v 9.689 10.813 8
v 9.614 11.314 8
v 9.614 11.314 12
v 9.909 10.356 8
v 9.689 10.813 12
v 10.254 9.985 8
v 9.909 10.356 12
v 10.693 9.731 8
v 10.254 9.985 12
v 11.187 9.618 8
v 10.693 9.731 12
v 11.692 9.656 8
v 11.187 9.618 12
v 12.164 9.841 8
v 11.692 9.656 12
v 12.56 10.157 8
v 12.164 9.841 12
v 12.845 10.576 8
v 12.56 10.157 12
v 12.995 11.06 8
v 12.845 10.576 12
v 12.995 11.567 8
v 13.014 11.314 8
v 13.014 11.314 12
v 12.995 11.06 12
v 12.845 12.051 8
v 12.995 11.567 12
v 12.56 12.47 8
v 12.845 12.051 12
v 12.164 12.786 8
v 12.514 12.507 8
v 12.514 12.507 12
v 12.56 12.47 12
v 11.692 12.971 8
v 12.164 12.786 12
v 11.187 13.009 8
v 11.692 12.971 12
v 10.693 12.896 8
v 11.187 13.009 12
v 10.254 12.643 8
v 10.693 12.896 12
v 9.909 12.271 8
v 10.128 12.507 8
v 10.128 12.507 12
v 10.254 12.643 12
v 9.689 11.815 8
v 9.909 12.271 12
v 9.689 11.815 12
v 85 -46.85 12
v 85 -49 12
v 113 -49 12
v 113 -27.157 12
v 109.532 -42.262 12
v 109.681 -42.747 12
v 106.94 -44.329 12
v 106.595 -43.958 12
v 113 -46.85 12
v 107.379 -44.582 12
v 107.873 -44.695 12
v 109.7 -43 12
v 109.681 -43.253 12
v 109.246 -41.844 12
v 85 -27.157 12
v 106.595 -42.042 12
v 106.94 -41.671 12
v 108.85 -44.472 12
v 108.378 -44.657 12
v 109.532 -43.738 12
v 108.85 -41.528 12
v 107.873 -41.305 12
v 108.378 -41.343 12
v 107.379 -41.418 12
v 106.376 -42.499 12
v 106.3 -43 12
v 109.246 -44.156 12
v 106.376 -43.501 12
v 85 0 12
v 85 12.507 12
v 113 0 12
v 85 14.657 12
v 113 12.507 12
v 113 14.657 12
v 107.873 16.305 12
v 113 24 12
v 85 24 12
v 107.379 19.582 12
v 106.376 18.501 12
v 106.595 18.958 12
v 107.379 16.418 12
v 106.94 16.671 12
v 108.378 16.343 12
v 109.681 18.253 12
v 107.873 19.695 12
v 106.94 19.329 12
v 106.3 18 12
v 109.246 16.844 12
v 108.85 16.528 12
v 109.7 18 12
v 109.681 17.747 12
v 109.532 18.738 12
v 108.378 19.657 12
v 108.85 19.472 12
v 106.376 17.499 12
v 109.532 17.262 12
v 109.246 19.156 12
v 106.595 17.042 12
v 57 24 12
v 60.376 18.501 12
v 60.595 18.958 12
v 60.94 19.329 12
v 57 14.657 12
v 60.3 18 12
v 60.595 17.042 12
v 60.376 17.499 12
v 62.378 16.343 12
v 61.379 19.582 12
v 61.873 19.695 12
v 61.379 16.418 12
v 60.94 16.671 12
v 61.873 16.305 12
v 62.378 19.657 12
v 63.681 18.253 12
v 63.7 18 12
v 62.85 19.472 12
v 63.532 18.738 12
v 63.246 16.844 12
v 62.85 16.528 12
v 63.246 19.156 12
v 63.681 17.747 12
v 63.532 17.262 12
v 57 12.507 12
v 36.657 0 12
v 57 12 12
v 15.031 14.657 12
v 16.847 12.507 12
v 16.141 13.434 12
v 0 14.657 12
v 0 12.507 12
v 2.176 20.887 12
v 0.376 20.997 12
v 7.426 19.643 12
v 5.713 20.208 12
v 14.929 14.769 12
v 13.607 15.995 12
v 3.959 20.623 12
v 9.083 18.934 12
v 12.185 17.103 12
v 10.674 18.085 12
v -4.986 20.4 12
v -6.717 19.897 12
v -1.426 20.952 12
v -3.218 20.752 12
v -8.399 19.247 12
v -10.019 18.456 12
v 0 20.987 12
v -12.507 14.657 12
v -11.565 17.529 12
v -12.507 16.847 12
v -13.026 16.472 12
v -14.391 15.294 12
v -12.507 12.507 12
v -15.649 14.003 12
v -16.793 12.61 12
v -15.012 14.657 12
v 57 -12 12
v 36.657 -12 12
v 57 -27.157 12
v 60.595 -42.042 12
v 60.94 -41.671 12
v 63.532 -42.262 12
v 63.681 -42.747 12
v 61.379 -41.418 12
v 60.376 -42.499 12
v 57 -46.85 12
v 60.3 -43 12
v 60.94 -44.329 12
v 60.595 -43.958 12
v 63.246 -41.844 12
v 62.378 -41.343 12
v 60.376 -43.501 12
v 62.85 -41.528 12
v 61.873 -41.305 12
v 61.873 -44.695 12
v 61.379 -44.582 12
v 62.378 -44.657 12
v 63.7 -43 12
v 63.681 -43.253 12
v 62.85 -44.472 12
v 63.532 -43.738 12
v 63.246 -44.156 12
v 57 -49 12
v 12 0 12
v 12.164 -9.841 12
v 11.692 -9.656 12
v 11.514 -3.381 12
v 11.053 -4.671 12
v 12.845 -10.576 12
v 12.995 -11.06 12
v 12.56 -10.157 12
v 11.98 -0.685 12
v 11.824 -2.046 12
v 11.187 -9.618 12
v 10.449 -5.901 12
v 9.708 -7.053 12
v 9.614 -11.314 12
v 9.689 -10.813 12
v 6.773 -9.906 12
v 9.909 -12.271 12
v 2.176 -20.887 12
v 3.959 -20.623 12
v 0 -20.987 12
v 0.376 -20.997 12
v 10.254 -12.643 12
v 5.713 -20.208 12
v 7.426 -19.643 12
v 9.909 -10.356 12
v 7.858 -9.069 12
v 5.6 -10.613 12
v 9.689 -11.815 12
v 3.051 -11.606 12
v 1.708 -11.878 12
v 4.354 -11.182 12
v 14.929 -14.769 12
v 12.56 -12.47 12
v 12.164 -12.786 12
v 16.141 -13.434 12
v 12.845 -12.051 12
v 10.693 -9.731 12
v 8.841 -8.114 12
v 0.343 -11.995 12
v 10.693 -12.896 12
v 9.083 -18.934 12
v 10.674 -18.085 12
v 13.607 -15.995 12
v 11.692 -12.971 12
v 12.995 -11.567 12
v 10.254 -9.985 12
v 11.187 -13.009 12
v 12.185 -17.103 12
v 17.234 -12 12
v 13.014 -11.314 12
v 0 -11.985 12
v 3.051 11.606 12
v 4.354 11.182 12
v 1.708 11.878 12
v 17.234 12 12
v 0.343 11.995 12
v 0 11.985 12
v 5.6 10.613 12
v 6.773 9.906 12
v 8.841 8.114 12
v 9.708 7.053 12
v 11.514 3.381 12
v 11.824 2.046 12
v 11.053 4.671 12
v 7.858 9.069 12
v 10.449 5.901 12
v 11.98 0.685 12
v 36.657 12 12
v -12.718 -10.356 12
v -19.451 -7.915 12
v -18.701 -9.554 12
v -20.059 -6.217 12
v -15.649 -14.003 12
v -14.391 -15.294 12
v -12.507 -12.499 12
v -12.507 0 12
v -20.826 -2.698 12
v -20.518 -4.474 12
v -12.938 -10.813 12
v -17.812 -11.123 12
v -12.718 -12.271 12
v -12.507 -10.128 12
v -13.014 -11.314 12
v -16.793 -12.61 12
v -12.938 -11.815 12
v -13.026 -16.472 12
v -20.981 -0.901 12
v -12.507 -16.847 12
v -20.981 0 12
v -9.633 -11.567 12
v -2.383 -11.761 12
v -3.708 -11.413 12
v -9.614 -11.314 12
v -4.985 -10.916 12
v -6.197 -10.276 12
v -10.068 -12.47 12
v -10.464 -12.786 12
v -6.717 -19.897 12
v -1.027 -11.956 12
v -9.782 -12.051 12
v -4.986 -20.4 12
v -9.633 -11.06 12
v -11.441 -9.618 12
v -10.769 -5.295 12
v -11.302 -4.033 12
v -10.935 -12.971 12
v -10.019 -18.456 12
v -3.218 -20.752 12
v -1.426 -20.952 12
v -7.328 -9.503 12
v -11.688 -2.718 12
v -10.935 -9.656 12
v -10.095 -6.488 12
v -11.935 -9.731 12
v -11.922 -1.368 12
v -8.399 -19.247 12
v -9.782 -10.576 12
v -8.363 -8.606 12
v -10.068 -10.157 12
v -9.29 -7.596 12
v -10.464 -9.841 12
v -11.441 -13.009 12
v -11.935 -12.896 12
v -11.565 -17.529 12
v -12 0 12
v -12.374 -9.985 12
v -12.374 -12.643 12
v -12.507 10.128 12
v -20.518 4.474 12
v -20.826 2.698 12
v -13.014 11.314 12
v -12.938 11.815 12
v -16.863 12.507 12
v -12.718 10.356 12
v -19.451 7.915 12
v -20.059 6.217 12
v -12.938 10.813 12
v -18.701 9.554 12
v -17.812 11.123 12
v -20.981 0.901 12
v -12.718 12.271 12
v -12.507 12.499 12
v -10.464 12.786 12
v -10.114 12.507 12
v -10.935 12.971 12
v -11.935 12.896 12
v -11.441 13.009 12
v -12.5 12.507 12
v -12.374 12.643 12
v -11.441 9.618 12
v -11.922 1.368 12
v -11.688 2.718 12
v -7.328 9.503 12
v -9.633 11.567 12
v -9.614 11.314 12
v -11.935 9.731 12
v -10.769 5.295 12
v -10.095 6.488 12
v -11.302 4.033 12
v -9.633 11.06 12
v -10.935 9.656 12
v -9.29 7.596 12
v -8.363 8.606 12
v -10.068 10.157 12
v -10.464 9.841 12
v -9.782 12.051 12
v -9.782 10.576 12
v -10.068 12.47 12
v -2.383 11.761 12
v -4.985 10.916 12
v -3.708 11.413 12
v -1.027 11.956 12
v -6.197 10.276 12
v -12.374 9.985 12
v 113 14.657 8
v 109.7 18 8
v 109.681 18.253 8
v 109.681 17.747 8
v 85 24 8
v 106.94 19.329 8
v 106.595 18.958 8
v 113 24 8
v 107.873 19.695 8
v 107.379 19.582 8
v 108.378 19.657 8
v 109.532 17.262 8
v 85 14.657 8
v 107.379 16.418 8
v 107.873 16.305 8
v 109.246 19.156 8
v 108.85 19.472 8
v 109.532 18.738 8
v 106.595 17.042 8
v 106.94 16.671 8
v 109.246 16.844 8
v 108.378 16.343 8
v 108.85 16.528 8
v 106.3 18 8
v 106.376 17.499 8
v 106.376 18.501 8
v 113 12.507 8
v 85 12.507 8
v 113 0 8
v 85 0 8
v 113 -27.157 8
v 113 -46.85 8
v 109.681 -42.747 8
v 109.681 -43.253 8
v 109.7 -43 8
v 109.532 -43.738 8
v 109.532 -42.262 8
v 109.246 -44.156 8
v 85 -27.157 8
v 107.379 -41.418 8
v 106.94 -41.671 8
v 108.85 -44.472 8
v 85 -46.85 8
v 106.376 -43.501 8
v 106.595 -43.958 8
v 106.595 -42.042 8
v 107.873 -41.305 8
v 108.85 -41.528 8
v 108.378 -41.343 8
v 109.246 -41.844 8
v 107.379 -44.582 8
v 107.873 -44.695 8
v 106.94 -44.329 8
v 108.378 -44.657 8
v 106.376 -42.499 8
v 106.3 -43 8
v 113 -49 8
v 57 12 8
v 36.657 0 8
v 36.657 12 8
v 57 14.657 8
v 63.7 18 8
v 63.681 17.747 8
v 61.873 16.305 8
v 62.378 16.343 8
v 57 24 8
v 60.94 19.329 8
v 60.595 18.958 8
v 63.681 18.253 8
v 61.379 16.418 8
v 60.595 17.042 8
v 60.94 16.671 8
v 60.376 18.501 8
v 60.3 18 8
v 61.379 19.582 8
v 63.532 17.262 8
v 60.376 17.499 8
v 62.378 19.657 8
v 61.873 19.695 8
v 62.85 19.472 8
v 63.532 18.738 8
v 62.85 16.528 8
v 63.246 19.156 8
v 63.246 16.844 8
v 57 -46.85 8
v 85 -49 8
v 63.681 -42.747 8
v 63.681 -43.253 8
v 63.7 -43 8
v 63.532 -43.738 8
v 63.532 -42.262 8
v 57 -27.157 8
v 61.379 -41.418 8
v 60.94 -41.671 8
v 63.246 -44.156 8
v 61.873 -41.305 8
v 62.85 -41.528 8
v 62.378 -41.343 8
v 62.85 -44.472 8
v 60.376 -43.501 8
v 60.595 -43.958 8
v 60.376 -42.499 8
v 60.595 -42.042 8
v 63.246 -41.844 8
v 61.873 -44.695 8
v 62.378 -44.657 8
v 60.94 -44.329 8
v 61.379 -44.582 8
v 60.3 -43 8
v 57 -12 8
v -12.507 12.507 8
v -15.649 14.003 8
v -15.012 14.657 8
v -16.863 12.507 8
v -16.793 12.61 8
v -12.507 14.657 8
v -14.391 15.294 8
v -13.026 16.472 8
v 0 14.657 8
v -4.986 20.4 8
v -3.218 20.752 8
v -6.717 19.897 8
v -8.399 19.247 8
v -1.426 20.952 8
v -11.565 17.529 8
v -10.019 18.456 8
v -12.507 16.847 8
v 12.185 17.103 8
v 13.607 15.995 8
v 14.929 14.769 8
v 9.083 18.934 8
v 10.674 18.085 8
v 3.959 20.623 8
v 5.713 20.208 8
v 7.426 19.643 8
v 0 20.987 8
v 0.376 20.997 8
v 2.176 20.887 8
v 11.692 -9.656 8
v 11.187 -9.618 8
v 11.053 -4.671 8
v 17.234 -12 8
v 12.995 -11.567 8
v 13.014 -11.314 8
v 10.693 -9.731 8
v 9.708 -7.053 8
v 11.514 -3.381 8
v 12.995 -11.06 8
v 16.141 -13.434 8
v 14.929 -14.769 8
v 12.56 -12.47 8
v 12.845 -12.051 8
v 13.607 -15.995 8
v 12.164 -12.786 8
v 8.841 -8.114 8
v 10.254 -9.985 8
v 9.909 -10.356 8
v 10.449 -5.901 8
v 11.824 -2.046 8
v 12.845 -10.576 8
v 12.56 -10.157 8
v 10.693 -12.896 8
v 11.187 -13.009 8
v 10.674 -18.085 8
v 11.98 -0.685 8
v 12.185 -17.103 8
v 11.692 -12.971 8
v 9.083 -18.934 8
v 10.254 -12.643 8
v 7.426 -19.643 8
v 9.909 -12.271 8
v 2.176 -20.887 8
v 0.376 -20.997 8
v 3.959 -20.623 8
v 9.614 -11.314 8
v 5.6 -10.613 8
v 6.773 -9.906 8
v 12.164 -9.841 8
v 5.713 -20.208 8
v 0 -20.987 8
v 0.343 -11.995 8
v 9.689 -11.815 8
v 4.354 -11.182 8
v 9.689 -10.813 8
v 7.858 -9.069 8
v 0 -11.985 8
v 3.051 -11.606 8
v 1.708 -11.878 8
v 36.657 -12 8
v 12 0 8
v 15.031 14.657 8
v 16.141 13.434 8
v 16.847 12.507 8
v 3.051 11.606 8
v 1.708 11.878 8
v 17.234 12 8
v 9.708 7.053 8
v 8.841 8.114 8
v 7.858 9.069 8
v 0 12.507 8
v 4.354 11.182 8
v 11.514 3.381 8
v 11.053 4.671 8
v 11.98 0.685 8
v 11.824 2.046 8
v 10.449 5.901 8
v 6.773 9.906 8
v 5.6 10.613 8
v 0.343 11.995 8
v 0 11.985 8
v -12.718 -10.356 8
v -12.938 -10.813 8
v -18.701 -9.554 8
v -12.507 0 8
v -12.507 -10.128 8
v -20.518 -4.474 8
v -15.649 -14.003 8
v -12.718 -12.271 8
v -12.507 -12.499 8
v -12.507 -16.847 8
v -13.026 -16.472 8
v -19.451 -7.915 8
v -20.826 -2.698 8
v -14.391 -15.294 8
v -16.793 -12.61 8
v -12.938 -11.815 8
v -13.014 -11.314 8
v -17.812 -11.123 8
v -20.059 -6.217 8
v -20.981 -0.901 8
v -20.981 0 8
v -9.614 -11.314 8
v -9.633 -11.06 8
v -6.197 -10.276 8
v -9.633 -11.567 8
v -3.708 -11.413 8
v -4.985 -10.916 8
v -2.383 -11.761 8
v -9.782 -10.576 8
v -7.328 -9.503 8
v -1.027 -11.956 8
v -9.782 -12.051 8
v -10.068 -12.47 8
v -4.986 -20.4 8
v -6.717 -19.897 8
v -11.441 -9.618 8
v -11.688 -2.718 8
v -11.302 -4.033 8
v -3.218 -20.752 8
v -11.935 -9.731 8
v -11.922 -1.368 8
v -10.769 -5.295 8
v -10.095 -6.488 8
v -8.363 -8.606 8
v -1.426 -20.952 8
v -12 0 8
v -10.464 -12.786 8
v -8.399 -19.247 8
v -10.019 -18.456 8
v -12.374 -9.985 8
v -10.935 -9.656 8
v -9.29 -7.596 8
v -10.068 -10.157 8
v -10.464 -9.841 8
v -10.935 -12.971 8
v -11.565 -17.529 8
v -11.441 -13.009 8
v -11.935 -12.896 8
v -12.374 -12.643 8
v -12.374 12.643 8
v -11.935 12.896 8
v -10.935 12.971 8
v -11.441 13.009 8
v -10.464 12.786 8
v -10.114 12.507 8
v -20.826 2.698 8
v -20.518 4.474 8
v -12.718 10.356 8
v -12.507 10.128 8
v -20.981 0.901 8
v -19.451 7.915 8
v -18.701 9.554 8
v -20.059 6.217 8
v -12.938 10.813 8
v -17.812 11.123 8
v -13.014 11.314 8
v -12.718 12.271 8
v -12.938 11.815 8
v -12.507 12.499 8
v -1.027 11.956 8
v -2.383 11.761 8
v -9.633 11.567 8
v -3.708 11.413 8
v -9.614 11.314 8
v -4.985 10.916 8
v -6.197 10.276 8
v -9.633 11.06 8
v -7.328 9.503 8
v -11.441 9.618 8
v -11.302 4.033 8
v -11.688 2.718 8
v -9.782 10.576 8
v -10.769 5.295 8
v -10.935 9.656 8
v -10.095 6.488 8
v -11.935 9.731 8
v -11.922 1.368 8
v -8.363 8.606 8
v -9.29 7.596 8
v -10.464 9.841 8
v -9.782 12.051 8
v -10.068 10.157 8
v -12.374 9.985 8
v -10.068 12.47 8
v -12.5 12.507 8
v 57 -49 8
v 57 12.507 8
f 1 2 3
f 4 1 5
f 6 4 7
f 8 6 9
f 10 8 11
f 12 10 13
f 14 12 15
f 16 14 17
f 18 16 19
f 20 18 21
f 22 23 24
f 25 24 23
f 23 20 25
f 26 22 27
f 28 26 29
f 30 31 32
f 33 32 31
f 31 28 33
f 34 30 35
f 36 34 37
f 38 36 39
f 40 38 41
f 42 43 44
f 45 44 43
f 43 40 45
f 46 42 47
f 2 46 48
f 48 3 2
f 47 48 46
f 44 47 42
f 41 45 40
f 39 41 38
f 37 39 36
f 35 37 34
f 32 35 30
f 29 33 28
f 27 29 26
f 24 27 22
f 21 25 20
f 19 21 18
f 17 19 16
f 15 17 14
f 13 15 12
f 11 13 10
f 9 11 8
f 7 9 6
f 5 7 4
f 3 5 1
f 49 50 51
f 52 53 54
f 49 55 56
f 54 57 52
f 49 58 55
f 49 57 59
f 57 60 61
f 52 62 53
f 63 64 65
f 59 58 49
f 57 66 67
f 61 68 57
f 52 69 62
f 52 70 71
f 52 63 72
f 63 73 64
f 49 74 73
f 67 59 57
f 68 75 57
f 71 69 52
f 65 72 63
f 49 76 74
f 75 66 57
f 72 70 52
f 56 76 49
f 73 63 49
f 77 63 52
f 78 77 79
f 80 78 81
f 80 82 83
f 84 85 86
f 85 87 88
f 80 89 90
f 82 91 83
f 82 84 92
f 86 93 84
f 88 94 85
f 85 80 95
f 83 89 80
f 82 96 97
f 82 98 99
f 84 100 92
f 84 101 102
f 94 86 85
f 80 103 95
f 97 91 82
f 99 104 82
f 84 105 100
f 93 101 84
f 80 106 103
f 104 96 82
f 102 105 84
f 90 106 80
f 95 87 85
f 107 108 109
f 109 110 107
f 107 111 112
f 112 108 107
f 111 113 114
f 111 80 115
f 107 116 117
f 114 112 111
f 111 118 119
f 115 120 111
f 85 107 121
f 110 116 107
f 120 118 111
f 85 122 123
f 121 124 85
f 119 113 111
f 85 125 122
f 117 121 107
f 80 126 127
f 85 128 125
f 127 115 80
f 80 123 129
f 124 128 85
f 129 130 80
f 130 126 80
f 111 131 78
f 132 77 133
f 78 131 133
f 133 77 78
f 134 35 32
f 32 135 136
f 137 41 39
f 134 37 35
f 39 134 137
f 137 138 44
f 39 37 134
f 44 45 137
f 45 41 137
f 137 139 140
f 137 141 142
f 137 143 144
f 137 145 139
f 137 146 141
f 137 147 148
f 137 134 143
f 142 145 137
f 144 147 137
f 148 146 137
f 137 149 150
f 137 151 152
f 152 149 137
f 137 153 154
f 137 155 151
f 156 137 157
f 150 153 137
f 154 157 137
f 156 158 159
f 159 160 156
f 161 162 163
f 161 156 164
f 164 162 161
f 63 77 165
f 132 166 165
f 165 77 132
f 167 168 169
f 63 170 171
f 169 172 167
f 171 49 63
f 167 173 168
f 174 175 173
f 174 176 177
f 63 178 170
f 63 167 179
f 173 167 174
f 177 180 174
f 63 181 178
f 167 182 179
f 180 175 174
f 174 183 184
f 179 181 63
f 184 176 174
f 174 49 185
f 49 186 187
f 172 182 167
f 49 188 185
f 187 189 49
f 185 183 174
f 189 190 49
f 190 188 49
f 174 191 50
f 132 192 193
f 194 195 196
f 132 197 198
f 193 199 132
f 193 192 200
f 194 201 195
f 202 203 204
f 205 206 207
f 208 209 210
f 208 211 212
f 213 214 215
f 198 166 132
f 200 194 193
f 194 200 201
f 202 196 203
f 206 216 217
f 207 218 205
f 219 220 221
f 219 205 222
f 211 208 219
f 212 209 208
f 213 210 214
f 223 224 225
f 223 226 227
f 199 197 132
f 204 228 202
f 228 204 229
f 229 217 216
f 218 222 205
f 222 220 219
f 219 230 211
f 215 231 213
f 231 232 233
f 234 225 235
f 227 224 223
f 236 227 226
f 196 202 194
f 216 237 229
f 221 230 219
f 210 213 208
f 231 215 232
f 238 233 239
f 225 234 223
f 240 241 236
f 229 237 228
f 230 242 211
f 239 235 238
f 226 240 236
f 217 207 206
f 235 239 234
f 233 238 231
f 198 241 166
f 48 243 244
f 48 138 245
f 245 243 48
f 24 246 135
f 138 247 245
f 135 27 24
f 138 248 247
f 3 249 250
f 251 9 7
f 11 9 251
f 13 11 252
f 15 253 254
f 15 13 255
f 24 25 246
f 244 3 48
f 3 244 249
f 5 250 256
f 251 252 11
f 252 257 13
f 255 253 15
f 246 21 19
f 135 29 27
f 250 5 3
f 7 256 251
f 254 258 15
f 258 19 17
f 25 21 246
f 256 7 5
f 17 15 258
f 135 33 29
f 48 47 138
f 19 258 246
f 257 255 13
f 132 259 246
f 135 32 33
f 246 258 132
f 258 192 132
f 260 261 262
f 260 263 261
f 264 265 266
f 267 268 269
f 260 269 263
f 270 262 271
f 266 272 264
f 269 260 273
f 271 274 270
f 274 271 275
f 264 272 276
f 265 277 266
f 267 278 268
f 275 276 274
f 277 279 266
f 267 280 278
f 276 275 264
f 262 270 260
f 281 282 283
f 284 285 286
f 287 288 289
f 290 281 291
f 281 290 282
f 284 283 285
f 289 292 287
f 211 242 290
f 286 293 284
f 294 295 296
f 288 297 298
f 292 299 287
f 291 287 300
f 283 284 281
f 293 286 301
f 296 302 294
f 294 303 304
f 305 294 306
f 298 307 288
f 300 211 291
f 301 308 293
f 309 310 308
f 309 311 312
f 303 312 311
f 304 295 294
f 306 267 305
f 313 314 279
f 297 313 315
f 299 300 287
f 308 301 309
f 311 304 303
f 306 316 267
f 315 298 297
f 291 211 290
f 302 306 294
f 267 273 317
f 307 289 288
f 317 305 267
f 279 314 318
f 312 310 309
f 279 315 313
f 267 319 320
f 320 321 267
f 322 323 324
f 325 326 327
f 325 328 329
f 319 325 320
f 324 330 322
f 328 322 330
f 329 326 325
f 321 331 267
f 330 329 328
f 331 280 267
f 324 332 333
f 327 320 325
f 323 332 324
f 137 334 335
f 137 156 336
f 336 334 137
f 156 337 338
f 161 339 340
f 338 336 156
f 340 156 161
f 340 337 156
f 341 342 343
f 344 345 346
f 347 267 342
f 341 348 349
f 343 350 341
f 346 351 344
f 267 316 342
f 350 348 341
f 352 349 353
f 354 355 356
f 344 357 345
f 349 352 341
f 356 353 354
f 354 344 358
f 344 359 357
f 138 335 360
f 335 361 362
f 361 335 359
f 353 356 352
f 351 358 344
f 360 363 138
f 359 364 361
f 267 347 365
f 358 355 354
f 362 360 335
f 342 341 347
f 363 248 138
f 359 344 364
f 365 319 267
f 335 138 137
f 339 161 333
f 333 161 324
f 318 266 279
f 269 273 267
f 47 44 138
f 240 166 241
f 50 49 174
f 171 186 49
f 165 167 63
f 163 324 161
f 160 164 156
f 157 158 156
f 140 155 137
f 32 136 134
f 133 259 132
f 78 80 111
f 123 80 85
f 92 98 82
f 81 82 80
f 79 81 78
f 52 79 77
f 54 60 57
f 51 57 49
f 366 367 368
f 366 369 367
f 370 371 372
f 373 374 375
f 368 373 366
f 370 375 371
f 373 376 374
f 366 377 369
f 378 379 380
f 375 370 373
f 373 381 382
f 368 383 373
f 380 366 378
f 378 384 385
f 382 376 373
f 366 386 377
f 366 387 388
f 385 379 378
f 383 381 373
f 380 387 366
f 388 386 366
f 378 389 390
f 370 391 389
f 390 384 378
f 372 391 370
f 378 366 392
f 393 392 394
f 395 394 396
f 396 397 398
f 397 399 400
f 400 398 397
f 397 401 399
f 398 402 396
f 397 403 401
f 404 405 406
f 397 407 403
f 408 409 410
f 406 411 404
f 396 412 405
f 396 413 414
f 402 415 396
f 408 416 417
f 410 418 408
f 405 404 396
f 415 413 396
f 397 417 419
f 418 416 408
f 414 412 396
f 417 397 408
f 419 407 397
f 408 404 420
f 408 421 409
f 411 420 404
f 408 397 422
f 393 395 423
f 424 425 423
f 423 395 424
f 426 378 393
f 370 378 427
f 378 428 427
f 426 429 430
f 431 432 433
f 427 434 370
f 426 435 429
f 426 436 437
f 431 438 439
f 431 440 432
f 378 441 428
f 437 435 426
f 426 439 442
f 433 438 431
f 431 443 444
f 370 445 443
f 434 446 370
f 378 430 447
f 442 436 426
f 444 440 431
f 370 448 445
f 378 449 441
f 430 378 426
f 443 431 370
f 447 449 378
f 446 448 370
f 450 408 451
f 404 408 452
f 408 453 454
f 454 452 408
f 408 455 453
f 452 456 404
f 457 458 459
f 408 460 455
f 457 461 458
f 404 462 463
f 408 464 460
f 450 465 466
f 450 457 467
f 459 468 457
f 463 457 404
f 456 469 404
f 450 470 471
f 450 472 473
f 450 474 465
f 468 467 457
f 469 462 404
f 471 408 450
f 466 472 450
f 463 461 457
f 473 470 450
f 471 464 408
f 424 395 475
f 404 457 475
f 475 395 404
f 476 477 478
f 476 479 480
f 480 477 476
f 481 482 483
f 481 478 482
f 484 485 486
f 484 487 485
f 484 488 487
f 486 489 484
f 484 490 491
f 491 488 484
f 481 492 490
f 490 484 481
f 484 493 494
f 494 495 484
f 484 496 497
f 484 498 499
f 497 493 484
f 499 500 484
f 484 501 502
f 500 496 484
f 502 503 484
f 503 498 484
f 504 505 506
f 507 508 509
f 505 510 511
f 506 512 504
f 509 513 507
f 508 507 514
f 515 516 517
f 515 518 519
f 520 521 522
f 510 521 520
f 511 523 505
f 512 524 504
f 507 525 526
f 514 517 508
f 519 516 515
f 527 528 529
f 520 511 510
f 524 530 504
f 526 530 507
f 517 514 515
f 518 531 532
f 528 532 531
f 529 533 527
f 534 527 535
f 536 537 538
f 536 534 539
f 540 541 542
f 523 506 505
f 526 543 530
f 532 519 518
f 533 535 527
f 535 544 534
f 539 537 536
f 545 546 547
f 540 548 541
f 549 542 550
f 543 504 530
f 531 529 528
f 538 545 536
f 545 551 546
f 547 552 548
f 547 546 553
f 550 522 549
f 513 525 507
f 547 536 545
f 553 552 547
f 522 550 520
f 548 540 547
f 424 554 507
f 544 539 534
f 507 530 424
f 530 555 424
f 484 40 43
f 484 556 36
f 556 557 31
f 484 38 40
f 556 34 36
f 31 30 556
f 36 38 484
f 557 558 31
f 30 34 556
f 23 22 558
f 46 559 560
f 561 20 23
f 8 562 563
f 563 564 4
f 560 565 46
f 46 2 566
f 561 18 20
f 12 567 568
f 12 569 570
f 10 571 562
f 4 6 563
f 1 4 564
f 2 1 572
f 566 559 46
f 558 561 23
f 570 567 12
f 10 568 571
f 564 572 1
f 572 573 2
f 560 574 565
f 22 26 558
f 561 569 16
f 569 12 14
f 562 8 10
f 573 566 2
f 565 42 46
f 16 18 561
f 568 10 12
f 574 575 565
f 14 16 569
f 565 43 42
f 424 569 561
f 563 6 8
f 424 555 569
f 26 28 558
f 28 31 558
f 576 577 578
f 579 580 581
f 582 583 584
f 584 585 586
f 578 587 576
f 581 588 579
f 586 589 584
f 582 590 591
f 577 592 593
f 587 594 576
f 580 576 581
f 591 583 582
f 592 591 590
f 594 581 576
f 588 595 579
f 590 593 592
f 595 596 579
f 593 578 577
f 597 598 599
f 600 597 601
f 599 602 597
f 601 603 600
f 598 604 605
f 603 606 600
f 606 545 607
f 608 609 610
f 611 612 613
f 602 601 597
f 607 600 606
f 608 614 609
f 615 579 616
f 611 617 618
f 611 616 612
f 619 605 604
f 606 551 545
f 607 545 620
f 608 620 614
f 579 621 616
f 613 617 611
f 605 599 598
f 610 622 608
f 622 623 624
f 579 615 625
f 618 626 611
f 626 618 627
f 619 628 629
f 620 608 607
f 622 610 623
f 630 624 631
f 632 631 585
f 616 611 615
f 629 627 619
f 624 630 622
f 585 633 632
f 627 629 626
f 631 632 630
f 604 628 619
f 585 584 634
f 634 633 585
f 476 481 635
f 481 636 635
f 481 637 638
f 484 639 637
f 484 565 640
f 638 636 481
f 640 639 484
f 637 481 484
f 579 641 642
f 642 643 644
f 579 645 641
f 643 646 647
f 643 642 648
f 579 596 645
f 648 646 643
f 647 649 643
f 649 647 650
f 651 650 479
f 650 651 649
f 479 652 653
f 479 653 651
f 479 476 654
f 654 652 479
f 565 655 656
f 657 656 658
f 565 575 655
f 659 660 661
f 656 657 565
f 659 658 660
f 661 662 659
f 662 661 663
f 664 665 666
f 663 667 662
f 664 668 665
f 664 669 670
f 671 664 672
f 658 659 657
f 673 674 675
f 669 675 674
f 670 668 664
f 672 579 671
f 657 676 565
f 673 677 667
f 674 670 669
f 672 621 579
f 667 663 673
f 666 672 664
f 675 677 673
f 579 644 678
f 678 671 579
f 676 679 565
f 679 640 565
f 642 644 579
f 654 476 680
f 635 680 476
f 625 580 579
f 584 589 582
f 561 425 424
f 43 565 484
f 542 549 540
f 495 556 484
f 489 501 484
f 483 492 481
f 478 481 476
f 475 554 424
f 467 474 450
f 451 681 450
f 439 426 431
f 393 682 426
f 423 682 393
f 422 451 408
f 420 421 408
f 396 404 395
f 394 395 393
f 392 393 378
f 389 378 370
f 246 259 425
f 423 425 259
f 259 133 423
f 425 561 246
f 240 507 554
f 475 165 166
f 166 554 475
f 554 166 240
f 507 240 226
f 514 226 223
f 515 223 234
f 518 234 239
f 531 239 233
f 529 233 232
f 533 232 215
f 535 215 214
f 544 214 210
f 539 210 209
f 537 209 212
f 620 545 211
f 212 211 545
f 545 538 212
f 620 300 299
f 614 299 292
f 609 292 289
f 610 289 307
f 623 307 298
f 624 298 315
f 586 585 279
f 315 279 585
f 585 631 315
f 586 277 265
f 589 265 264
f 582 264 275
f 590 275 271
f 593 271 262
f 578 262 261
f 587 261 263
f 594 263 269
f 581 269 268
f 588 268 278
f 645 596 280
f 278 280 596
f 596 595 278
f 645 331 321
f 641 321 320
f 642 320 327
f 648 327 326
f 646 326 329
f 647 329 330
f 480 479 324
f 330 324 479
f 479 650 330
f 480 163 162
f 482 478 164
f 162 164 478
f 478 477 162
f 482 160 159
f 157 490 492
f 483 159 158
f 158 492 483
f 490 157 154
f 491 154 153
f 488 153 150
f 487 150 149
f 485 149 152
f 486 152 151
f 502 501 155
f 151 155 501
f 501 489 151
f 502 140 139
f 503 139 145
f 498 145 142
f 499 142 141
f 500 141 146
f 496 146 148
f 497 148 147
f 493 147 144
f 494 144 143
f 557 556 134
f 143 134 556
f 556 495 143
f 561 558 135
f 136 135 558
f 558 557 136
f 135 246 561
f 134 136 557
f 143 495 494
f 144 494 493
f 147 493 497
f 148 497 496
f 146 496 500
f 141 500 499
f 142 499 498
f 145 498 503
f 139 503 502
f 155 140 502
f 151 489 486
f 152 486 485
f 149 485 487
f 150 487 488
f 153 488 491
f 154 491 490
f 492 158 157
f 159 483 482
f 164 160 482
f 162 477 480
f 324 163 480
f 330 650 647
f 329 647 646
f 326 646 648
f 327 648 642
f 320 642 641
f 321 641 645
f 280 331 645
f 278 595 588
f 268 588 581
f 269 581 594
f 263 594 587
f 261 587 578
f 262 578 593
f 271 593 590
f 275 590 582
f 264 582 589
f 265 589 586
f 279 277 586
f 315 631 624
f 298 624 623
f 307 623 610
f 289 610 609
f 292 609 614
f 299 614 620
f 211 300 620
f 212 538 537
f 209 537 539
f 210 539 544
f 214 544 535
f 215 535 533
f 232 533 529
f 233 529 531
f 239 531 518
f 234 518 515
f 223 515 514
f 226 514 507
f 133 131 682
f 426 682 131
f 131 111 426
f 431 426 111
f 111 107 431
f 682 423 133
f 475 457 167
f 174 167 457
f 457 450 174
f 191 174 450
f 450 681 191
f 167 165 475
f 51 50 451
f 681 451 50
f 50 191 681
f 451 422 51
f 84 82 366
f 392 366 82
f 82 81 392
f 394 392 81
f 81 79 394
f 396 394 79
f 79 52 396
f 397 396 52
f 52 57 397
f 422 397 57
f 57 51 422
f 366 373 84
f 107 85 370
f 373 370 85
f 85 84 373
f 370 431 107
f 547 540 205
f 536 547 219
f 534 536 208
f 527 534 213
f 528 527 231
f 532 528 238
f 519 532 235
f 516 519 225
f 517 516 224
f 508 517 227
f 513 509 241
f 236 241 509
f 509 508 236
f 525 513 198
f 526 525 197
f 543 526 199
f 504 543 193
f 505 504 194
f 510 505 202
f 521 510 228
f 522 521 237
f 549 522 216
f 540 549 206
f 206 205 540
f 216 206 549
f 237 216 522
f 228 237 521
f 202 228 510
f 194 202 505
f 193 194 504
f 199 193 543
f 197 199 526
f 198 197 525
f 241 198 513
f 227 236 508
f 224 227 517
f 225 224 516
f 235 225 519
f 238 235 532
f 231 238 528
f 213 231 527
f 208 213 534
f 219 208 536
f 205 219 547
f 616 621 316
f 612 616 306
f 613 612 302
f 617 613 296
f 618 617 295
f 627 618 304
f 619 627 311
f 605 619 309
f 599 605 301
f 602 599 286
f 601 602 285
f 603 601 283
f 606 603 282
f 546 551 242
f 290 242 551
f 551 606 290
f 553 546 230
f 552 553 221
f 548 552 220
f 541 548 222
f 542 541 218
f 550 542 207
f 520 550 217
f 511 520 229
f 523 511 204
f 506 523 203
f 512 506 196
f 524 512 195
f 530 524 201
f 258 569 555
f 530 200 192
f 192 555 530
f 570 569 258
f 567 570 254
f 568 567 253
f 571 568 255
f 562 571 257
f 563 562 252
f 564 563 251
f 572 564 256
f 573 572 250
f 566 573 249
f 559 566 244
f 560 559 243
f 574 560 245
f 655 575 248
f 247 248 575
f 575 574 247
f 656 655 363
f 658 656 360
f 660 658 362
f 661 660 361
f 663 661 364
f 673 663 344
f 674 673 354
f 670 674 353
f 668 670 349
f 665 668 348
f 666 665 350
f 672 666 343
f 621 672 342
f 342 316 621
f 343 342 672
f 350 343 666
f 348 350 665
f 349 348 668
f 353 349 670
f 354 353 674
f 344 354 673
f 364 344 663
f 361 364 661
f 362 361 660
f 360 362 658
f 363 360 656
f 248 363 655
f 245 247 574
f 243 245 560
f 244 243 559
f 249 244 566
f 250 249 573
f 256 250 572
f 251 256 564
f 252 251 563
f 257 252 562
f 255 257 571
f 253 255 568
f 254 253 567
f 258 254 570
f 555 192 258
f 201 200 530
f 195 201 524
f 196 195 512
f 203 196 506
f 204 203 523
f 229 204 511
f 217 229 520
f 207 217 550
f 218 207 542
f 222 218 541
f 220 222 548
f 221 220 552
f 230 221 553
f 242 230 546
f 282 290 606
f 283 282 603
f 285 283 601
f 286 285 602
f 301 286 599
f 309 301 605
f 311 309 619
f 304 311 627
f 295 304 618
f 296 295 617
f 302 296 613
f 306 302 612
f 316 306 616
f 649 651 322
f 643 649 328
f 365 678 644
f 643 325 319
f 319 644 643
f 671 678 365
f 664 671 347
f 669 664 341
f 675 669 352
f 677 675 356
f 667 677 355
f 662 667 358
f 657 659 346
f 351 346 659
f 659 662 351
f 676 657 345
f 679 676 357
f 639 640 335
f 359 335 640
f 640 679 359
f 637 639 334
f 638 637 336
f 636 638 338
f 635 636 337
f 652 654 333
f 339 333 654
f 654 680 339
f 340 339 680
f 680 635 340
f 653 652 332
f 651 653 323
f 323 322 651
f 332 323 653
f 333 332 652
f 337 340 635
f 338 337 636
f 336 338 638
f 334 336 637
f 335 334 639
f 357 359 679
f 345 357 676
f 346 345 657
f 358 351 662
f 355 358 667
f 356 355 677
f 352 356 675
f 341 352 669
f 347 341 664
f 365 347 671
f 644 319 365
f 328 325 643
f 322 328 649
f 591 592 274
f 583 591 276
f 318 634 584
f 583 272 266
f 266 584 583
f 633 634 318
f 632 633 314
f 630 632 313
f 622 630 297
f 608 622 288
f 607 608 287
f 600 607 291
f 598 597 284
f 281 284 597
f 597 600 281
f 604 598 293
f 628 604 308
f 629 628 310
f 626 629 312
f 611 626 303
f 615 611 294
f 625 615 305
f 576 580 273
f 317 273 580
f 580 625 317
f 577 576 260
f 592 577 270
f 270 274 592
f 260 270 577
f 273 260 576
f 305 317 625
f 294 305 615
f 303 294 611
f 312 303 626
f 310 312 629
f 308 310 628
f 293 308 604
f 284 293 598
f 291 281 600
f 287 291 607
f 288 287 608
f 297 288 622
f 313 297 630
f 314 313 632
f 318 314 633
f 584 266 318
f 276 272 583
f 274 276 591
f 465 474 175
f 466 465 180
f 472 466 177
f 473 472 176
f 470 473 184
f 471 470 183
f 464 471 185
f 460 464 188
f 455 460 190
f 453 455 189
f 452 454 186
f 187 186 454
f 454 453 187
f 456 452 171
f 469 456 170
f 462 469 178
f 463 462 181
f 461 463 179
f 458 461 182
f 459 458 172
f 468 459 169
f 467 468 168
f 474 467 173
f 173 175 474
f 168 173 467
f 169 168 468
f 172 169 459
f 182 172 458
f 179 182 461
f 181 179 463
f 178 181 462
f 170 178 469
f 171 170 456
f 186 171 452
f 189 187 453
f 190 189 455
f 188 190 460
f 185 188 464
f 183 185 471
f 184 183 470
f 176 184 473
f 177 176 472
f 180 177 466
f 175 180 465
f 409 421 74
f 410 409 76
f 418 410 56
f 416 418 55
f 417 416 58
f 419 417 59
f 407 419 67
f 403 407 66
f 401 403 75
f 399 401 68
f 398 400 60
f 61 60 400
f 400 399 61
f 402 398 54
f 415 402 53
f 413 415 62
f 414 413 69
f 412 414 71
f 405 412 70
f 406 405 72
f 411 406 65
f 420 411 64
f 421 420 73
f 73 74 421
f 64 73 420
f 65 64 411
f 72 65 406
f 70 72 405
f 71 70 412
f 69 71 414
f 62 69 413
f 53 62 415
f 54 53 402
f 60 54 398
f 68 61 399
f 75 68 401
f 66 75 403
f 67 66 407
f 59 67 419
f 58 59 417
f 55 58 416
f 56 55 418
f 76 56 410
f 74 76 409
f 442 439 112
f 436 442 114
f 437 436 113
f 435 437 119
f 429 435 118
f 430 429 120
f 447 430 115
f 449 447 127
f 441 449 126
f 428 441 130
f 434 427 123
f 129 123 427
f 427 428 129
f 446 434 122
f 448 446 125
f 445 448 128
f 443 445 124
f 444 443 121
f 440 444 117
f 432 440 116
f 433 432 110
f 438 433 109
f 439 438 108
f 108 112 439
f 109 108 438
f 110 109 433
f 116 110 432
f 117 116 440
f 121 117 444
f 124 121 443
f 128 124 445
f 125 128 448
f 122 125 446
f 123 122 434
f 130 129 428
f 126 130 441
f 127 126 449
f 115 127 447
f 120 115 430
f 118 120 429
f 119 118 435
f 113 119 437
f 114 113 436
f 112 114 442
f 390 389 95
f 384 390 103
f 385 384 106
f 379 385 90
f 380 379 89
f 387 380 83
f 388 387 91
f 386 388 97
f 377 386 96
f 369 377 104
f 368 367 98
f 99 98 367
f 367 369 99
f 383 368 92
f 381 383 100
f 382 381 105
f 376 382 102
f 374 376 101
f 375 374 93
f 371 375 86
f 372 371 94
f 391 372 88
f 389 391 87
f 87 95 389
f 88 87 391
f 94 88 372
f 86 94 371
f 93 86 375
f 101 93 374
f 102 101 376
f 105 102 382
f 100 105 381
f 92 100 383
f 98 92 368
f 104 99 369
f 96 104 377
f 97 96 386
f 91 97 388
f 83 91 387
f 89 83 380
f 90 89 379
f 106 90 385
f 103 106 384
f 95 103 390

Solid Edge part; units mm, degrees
sketch "Sketch1" plane through (0, 0, 8) normal (0, 0, 1) x (1, 0, 0)
  circle A0 centre (0, 0) radius 21
  circle A1 centre (0, 0) radius 12
  circle A2 centre (11.3137, 11.3137) radius 1.7
  circle A3 centre (-11.3137, 11.3137) radius 1.7
  circle A4 centre (-11.3137, -11.3137) radius 1.7
  circle A5 centre (11.3137, -11.3137) radius 1.7
extrude "ExtrudedProtrusion_1" add sketch "Sketch1" along normal blind 4
sketch "Sketch2" plane through (0, 0, 8) normal (0, 0, 1) x (1, 0, 0)
  line L0 (12, -12) -> (73, -12)
  line L1 (73, -12) -> (73, 12)
  line L2 (73, 12) -> (12, 12)
  line L3 (12, 12) -> (12, -12)
extrude "ExtrudedProtrusion_2" add sketch "Sketch2" along normal blind 4
sketch "Sketch3" plane through (0, 0, 8) normal (0, 0, 1) x (1, 0, 0)
  line L0 (57, -49) -> (113, -49)
  line L1 (113, -49) -> (113, 24)
  line L2 (113, 24) -> (57, 24)
  line L3 (57, 24) -> (57, -49)
  circle A0 centre (62, -43) radius 1.7
  circle A1 centre (108, -43) radius 1.7
  circle A2 centre (62, 18) radius 1.7
  circle A3 centre (108, 18) radius 1.7
extrude "ExtrudedProtrusion_3" add sketch "Sketch3" along normal blind 4
sketch "Sketch4" plane through (0, 0, 8) normal (0, 0, 1) x (1, 0, 0)
  circle A0 centre (11.3137, 11.3137) radius 1.7
  circle A1 centre (-11.3137, 11.3137) radius 1.7
  circle A2 centre (-11.3137, -11.3137) radius 1.7
  circle A3 centre (11.3137, -11.3137) radius 1.7
  circle A4 centre (62, -43) radius 1.7
  circle A5 centre (108, -43) radius 1.7
  circle A6 centre (62, 18) radius 1.7
  circle A7 centre (108, 18) radius 1.7
extrude "ExtrudedCutout_1" cut sketch "Sketch4" along normal blind 4
